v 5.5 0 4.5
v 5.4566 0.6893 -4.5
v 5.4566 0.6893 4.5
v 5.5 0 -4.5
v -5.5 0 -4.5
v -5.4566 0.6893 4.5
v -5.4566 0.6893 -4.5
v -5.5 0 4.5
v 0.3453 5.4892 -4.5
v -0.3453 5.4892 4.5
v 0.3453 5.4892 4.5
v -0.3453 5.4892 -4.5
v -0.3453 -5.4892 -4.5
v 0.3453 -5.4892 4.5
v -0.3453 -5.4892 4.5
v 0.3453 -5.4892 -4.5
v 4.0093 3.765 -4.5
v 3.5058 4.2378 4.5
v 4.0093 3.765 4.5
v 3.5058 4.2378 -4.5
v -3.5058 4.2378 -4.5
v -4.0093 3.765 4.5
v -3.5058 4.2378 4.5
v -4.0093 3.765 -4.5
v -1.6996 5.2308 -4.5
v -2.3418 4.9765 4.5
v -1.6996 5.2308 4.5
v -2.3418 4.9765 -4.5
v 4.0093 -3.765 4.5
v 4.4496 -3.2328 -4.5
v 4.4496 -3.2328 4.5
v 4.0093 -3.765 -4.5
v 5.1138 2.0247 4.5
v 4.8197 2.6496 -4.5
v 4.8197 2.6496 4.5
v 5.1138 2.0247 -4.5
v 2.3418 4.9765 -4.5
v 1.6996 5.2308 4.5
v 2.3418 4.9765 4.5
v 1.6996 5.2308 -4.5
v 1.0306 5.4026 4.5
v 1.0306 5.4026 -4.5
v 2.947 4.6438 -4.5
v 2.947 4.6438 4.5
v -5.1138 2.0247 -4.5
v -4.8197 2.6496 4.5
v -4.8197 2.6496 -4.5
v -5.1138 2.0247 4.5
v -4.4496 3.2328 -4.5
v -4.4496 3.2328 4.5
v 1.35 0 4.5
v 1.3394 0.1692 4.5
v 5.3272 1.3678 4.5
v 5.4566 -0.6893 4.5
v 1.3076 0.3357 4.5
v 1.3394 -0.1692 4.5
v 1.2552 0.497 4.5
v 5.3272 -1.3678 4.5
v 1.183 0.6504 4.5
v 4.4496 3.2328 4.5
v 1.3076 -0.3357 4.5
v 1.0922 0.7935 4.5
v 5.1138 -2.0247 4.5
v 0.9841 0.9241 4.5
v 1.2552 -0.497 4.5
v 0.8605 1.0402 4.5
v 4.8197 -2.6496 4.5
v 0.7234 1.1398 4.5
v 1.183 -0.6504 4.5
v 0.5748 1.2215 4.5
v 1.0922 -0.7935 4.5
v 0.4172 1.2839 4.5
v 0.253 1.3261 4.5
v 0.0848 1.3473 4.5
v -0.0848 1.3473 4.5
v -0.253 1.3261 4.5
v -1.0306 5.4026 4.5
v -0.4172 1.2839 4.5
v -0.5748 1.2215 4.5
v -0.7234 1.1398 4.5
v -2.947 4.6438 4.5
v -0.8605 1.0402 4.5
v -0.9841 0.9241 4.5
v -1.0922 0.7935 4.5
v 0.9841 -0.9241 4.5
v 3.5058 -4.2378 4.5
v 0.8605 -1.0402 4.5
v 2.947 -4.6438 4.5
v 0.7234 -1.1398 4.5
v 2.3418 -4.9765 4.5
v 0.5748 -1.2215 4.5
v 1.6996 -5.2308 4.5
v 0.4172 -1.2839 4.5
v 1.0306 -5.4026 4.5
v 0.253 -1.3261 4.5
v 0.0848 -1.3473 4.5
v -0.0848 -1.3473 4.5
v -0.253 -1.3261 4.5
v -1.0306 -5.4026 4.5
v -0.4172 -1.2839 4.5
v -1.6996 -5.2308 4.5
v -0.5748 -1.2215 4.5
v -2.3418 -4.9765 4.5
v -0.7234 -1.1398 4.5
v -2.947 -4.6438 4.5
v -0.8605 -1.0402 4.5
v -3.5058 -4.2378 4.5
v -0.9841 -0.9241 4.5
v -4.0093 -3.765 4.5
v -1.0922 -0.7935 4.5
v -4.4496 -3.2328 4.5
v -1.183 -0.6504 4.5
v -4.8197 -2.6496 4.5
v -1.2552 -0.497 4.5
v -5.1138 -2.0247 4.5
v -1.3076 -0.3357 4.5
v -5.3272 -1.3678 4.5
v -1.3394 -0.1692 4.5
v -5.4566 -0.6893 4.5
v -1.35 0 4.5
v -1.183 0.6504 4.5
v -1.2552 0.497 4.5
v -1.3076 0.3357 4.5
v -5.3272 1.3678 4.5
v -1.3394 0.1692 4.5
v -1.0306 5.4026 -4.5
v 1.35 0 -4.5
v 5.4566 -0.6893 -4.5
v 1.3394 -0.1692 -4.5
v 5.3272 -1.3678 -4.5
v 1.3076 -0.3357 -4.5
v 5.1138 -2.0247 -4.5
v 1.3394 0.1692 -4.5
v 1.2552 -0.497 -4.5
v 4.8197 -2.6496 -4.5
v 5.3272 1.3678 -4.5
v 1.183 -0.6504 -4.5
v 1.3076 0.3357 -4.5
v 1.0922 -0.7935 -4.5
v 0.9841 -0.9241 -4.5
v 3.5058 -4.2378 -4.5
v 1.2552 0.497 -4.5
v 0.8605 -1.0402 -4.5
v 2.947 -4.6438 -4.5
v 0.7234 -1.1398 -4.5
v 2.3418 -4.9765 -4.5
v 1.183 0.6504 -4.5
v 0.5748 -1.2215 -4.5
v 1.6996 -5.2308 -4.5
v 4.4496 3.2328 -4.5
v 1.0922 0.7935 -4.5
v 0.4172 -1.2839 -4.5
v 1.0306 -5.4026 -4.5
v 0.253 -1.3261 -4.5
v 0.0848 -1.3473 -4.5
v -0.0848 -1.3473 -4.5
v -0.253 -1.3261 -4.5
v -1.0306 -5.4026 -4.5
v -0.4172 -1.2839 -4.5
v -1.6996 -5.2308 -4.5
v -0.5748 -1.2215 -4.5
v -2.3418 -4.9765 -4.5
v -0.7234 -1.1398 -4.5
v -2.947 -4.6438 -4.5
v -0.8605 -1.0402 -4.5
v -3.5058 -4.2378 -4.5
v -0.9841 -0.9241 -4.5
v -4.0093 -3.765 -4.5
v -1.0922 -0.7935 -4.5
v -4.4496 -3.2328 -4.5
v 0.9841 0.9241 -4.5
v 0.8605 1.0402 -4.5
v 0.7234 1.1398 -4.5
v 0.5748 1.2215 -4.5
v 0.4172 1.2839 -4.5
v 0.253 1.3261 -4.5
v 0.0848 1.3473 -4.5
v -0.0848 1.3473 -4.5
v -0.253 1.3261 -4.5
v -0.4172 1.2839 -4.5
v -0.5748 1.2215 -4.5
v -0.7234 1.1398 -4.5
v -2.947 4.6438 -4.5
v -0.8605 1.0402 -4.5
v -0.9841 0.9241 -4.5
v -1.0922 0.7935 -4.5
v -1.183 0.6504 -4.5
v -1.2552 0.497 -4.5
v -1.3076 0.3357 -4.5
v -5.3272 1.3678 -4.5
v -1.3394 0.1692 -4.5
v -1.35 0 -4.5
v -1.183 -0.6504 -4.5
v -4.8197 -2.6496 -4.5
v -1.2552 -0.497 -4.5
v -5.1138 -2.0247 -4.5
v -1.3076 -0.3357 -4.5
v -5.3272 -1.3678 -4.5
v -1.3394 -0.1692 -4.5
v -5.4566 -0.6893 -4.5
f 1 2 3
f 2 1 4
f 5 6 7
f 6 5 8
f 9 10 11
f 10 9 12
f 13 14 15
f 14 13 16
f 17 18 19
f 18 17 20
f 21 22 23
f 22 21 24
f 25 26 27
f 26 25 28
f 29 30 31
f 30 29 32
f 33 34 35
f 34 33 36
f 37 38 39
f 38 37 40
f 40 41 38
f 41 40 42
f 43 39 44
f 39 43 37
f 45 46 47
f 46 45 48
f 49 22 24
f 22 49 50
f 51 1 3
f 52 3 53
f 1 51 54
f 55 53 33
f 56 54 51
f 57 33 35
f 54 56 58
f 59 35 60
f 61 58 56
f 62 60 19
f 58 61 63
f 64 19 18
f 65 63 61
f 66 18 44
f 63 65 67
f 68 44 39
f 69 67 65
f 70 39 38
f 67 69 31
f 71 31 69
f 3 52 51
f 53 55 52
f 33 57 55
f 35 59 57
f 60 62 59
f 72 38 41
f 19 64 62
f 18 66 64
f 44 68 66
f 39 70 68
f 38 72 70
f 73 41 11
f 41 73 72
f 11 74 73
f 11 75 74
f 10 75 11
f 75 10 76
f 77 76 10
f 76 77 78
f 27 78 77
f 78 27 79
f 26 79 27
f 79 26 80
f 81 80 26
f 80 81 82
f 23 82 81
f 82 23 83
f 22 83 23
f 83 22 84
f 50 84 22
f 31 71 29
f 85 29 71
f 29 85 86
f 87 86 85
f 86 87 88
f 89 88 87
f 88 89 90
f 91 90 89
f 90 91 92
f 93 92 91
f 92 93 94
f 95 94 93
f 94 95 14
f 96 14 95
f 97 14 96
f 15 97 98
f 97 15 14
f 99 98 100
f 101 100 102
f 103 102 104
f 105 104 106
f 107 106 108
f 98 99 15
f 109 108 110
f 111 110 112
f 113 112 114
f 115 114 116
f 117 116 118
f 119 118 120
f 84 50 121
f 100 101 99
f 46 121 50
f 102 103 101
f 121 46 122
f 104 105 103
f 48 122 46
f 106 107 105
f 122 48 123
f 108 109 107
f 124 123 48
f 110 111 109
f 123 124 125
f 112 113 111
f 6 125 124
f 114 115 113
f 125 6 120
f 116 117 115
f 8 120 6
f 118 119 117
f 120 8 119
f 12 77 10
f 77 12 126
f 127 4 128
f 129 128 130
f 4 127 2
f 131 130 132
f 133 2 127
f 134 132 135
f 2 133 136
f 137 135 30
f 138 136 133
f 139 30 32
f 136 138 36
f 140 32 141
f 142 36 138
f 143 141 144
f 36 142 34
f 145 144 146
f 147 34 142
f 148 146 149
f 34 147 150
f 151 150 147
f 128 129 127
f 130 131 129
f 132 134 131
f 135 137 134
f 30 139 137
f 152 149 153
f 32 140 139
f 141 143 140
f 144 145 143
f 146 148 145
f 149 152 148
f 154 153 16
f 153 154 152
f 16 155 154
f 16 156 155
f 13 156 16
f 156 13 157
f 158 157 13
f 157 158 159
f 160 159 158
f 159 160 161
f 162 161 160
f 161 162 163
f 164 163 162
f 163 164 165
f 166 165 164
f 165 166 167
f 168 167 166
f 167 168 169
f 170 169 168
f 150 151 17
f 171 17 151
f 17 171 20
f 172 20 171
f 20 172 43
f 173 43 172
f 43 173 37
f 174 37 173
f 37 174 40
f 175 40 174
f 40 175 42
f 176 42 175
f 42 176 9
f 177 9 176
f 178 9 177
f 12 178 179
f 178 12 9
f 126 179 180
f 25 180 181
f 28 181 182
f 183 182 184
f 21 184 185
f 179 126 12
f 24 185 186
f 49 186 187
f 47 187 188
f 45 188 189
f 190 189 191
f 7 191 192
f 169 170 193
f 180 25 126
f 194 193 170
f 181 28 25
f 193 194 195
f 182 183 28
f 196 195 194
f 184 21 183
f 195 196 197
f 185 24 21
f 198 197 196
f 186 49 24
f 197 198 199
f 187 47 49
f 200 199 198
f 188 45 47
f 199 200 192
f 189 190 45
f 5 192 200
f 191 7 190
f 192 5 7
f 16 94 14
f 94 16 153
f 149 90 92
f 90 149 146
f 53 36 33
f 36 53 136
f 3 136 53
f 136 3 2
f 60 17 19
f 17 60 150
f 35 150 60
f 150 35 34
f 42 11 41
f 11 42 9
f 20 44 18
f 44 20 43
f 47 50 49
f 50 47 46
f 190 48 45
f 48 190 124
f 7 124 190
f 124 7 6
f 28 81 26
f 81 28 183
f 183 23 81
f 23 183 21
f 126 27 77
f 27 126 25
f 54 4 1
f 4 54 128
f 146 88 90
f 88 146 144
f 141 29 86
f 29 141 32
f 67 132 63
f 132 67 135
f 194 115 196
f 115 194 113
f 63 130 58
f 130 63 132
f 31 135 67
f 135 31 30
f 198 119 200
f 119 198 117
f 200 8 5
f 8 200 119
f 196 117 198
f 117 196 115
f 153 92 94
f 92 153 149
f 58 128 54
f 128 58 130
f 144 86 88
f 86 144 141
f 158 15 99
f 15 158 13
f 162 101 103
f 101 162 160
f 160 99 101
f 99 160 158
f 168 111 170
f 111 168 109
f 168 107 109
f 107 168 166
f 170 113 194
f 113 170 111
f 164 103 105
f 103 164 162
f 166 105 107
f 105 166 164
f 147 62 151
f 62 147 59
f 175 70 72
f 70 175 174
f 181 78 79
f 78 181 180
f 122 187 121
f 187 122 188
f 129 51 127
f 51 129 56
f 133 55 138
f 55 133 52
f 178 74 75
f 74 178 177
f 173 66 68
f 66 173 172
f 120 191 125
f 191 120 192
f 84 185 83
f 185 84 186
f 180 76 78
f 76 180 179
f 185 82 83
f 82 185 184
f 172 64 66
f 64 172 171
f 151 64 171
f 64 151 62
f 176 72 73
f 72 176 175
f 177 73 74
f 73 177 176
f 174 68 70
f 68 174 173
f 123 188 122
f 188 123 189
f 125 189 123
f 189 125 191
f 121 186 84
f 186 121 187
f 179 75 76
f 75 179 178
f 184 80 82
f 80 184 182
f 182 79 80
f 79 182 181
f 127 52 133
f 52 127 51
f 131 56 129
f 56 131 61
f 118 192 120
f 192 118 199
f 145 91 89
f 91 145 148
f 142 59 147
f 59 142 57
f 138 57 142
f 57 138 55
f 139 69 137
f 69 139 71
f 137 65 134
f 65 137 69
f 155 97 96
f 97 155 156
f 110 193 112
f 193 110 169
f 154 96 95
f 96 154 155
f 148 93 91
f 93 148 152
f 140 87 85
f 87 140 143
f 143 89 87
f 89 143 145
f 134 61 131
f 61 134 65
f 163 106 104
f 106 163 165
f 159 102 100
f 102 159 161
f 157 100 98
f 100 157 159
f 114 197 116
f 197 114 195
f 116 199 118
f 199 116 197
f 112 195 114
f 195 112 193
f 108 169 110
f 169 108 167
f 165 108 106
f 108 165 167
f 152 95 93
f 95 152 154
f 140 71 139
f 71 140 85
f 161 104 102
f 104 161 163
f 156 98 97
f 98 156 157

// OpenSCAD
$fn = 50;


difference() {
	union() {
		translate(v = [0, 0, -4.5000000000]) {
			cylinder(h = 9, r = 5.5000000000);
		}
	}
	union() {
		translate(v = [0, 0, -100.0000000000]) {
			cylinder(h = 200, r = 1.3500000000);
		}
	}
}
